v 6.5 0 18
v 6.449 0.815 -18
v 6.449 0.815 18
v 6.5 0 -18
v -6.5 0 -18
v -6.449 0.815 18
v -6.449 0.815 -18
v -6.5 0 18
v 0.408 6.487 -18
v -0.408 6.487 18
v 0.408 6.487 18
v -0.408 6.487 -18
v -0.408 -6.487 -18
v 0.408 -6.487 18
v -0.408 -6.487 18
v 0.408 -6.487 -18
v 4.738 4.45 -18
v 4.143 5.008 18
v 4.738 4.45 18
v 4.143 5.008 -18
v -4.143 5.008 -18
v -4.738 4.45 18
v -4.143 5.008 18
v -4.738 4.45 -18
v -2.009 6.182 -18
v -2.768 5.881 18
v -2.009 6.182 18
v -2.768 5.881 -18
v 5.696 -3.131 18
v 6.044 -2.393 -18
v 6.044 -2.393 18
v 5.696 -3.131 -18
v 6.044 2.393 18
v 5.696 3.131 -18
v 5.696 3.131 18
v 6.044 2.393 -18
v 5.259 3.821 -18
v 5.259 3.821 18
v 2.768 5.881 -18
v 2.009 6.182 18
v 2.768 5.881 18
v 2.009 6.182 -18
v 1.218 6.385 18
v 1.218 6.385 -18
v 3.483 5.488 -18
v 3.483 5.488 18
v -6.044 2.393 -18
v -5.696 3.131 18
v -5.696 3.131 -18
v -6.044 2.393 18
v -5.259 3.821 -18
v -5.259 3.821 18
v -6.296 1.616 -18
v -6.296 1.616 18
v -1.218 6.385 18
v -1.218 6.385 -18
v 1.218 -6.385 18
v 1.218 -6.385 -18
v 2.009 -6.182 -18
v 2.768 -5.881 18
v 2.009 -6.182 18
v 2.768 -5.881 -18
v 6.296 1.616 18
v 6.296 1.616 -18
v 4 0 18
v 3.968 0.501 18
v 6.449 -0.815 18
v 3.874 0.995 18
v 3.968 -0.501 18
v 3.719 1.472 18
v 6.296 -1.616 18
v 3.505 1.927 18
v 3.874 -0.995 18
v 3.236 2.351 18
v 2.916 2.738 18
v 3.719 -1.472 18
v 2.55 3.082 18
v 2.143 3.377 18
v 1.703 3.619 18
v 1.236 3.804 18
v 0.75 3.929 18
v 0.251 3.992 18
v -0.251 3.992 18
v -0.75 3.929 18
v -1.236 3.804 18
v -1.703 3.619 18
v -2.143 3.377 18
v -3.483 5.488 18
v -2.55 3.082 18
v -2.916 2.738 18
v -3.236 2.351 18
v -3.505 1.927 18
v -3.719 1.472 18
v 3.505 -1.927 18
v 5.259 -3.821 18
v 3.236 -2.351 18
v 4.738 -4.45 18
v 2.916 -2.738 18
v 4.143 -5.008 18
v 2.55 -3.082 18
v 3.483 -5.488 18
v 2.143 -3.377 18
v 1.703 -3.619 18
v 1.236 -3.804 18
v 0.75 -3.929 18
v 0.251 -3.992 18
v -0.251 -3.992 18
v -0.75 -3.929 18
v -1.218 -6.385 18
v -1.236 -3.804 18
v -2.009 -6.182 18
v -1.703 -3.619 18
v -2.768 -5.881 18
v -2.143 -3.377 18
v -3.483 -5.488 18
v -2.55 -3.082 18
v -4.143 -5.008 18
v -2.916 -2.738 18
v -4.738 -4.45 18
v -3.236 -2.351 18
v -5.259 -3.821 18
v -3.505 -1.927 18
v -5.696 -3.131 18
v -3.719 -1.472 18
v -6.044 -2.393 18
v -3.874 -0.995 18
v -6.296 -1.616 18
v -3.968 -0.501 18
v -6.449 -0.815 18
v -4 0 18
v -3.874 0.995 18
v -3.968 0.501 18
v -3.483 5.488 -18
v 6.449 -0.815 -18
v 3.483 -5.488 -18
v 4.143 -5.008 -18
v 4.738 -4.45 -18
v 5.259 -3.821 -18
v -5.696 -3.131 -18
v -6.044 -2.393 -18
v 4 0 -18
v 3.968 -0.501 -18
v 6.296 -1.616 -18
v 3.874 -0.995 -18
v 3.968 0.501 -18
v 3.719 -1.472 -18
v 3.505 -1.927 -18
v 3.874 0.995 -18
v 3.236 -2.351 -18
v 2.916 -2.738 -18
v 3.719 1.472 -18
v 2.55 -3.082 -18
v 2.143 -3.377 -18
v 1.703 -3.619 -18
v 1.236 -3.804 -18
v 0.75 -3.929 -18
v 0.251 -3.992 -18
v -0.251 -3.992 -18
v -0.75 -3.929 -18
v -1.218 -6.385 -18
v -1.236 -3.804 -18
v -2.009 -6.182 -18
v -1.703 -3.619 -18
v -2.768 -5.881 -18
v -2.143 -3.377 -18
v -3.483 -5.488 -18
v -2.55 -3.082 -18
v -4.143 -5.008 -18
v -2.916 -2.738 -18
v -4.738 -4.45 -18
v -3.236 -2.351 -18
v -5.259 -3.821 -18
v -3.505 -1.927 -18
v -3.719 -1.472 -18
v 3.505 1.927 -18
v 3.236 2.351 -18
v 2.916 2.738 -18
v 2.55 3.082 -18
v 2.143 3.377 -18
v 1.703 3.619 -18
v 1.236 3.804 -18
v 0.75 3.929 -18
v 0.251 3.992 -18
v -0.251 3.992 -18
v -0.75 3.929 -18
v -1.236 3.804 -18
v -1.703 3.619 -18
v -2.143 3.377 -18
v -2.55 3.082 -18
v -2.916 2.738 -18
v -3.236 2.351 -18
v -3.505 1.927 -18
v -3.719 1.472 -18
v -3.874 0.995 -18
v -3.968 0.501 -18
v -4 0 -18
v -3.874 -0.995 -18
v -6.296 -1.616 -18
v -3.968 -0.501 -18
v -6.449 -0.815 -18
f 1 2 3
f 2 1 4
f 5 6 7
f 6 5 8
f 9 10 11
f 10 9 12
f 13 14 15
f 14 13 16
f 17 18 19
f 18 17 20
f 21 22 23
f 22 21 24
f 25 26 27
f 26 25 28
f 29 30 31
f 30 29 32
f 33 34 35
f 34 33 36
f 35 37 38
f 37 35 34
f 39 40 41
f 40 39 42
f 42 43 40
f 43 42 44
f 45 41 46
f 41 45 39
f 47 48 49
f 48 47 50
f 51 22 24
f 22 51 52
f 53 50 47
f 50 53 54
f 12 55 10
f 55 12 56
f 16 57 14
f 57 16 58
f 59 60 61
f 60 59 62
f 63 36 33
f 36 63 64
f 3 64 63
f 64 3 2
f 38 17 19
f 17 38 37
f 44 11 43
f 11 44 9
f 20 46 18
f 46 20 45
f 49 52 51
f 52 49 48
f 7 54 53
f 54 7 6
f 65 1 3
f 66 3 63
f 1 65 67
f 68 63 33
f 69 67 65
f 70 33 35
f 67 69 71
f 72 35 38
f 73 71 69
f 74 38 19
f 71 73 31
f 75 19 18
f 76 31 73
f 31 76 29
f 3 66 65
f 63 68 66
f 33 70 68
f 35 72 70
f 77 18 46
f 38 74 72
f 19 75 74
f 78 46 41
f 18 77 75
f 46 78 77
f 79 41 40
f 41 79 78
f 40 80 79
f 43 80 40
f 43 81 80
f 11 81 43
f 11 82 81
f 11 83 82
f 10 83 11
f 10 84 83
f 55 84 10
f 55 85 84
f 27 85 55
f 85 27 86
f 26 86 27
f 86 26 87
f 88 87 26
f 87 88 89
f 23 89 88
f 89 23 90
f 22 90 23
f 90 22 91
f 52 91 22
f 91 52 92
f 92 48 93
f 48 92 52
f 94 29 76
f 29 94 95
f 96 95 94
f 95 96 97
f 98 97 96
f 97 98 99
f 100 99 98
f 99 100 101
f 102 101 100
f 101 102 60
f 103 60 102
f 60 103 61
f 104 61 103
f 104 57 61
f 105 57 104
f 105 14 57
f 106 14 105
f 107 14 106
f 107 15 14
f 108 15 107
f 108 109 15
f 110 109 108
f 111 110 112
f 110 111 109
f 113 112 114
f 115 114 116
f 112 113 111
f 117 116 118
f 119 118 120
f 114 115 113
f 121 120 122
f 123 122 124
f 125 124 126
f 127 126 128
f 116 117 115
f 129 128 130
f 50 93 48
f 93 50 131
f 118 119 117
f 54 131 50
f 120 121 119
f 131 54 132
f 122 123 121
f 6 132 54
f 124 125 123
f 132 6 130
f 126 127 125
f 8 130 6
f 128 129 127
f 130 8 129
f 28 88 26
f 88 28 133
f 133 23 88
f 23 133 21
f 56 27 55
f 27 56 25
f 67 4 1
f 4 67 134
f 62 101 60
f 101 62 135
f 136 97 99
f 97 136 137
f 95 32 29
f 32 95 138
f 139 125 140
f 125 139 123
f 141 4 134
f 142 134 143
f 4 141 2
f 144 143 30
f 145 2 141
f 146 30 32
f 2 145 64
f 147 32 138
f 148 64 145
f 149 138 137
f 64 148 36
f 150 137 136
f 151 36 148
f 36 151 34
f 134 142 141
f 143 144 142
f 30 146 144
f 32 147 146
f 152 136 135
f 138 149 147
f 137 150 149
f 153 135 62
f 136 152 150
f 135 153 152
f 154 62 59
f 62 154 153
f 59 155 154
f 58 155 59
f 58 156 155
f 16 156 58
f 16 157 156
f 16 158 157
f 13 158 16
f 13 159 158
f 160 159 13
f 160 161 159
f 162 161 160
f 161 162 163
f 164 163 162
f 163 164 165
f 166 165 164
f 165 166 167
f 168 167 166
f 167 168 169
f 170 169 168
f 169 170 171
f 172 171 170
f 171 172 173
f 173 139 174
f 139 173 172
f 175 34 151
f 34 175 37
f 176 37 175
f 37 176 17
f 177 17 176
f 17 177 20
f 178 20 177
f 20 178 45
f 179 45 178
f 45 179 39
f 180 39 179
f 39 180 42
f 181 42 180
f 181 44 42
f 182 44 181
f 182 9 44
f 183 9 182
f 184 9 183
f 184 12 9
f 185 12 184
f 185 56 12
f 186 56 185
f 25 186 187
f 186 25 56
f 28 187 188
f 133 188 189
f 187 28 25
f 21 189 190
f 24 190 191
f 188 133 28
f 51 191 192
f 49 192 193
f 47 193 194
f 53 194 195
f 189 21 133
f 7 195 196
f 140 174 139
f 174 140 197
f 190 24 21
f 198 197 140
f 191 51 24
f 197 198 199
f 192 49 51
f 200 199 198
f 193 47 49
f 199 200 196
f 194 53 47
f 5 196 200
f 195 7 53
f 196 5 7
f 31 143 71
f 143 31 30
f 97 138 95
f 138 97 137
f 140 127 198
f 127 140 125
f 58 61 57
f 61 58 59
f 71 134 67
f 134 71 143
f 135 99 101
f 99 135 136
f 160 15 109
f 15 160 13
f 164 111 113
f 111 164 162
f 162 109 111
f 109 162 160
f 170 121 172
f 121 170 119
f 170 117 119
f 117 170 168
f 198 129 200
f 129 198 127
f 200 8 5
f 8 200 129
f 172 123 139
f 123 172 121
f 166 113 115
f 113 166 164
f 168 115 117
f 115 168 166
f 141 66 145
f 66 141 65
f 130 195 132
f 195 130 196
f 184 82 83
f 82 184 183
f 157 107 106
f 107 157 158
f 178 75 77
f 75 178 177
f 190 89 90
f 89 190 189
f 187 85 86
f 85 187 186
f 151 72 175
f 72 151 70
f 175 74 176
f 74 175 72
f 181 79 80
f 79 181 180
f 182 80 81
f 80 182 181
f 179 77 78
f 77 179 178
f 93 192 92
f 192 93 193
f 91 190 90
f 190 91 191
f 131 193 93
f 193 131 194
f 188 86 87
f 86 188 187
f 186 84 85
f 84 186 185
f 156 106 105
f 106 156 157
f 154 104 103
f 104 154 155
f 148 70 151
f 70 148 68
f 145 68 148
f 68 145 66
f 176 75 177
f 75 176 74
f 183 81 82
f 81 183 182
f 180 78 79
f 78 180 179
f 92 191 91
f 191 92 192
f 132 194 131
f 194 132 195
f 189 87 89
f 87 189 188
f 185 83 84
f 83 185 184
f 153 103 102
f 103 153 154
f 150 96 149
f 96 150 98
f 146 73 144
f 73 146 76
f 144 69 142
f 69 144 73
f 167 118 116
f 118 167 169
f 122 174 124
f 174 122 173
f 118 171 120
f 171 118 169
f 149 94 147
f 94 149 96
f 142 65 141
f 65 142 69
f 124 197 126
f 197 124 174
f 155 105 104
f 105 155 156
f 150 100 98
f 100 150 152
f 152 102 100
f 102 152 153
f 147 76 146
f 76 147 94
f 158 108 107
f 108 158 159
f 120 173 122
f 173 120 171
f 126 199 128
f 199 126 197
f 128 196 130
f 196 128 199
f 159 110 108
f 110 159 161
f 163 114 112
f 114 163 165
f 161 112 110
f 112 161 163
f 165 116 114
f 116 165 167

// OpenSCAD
$fn = 50;


difference() {
	union() {
		translate(v = [0, 0, -18.0000000000]) {
			cylinder(h = 36, r = 6.5000000000);
		}
	}
	union() {
		translate(v = [0, 0, -100.0000000000]) {
			cylinder(h = 200, r = 4);
		}
	}
}
